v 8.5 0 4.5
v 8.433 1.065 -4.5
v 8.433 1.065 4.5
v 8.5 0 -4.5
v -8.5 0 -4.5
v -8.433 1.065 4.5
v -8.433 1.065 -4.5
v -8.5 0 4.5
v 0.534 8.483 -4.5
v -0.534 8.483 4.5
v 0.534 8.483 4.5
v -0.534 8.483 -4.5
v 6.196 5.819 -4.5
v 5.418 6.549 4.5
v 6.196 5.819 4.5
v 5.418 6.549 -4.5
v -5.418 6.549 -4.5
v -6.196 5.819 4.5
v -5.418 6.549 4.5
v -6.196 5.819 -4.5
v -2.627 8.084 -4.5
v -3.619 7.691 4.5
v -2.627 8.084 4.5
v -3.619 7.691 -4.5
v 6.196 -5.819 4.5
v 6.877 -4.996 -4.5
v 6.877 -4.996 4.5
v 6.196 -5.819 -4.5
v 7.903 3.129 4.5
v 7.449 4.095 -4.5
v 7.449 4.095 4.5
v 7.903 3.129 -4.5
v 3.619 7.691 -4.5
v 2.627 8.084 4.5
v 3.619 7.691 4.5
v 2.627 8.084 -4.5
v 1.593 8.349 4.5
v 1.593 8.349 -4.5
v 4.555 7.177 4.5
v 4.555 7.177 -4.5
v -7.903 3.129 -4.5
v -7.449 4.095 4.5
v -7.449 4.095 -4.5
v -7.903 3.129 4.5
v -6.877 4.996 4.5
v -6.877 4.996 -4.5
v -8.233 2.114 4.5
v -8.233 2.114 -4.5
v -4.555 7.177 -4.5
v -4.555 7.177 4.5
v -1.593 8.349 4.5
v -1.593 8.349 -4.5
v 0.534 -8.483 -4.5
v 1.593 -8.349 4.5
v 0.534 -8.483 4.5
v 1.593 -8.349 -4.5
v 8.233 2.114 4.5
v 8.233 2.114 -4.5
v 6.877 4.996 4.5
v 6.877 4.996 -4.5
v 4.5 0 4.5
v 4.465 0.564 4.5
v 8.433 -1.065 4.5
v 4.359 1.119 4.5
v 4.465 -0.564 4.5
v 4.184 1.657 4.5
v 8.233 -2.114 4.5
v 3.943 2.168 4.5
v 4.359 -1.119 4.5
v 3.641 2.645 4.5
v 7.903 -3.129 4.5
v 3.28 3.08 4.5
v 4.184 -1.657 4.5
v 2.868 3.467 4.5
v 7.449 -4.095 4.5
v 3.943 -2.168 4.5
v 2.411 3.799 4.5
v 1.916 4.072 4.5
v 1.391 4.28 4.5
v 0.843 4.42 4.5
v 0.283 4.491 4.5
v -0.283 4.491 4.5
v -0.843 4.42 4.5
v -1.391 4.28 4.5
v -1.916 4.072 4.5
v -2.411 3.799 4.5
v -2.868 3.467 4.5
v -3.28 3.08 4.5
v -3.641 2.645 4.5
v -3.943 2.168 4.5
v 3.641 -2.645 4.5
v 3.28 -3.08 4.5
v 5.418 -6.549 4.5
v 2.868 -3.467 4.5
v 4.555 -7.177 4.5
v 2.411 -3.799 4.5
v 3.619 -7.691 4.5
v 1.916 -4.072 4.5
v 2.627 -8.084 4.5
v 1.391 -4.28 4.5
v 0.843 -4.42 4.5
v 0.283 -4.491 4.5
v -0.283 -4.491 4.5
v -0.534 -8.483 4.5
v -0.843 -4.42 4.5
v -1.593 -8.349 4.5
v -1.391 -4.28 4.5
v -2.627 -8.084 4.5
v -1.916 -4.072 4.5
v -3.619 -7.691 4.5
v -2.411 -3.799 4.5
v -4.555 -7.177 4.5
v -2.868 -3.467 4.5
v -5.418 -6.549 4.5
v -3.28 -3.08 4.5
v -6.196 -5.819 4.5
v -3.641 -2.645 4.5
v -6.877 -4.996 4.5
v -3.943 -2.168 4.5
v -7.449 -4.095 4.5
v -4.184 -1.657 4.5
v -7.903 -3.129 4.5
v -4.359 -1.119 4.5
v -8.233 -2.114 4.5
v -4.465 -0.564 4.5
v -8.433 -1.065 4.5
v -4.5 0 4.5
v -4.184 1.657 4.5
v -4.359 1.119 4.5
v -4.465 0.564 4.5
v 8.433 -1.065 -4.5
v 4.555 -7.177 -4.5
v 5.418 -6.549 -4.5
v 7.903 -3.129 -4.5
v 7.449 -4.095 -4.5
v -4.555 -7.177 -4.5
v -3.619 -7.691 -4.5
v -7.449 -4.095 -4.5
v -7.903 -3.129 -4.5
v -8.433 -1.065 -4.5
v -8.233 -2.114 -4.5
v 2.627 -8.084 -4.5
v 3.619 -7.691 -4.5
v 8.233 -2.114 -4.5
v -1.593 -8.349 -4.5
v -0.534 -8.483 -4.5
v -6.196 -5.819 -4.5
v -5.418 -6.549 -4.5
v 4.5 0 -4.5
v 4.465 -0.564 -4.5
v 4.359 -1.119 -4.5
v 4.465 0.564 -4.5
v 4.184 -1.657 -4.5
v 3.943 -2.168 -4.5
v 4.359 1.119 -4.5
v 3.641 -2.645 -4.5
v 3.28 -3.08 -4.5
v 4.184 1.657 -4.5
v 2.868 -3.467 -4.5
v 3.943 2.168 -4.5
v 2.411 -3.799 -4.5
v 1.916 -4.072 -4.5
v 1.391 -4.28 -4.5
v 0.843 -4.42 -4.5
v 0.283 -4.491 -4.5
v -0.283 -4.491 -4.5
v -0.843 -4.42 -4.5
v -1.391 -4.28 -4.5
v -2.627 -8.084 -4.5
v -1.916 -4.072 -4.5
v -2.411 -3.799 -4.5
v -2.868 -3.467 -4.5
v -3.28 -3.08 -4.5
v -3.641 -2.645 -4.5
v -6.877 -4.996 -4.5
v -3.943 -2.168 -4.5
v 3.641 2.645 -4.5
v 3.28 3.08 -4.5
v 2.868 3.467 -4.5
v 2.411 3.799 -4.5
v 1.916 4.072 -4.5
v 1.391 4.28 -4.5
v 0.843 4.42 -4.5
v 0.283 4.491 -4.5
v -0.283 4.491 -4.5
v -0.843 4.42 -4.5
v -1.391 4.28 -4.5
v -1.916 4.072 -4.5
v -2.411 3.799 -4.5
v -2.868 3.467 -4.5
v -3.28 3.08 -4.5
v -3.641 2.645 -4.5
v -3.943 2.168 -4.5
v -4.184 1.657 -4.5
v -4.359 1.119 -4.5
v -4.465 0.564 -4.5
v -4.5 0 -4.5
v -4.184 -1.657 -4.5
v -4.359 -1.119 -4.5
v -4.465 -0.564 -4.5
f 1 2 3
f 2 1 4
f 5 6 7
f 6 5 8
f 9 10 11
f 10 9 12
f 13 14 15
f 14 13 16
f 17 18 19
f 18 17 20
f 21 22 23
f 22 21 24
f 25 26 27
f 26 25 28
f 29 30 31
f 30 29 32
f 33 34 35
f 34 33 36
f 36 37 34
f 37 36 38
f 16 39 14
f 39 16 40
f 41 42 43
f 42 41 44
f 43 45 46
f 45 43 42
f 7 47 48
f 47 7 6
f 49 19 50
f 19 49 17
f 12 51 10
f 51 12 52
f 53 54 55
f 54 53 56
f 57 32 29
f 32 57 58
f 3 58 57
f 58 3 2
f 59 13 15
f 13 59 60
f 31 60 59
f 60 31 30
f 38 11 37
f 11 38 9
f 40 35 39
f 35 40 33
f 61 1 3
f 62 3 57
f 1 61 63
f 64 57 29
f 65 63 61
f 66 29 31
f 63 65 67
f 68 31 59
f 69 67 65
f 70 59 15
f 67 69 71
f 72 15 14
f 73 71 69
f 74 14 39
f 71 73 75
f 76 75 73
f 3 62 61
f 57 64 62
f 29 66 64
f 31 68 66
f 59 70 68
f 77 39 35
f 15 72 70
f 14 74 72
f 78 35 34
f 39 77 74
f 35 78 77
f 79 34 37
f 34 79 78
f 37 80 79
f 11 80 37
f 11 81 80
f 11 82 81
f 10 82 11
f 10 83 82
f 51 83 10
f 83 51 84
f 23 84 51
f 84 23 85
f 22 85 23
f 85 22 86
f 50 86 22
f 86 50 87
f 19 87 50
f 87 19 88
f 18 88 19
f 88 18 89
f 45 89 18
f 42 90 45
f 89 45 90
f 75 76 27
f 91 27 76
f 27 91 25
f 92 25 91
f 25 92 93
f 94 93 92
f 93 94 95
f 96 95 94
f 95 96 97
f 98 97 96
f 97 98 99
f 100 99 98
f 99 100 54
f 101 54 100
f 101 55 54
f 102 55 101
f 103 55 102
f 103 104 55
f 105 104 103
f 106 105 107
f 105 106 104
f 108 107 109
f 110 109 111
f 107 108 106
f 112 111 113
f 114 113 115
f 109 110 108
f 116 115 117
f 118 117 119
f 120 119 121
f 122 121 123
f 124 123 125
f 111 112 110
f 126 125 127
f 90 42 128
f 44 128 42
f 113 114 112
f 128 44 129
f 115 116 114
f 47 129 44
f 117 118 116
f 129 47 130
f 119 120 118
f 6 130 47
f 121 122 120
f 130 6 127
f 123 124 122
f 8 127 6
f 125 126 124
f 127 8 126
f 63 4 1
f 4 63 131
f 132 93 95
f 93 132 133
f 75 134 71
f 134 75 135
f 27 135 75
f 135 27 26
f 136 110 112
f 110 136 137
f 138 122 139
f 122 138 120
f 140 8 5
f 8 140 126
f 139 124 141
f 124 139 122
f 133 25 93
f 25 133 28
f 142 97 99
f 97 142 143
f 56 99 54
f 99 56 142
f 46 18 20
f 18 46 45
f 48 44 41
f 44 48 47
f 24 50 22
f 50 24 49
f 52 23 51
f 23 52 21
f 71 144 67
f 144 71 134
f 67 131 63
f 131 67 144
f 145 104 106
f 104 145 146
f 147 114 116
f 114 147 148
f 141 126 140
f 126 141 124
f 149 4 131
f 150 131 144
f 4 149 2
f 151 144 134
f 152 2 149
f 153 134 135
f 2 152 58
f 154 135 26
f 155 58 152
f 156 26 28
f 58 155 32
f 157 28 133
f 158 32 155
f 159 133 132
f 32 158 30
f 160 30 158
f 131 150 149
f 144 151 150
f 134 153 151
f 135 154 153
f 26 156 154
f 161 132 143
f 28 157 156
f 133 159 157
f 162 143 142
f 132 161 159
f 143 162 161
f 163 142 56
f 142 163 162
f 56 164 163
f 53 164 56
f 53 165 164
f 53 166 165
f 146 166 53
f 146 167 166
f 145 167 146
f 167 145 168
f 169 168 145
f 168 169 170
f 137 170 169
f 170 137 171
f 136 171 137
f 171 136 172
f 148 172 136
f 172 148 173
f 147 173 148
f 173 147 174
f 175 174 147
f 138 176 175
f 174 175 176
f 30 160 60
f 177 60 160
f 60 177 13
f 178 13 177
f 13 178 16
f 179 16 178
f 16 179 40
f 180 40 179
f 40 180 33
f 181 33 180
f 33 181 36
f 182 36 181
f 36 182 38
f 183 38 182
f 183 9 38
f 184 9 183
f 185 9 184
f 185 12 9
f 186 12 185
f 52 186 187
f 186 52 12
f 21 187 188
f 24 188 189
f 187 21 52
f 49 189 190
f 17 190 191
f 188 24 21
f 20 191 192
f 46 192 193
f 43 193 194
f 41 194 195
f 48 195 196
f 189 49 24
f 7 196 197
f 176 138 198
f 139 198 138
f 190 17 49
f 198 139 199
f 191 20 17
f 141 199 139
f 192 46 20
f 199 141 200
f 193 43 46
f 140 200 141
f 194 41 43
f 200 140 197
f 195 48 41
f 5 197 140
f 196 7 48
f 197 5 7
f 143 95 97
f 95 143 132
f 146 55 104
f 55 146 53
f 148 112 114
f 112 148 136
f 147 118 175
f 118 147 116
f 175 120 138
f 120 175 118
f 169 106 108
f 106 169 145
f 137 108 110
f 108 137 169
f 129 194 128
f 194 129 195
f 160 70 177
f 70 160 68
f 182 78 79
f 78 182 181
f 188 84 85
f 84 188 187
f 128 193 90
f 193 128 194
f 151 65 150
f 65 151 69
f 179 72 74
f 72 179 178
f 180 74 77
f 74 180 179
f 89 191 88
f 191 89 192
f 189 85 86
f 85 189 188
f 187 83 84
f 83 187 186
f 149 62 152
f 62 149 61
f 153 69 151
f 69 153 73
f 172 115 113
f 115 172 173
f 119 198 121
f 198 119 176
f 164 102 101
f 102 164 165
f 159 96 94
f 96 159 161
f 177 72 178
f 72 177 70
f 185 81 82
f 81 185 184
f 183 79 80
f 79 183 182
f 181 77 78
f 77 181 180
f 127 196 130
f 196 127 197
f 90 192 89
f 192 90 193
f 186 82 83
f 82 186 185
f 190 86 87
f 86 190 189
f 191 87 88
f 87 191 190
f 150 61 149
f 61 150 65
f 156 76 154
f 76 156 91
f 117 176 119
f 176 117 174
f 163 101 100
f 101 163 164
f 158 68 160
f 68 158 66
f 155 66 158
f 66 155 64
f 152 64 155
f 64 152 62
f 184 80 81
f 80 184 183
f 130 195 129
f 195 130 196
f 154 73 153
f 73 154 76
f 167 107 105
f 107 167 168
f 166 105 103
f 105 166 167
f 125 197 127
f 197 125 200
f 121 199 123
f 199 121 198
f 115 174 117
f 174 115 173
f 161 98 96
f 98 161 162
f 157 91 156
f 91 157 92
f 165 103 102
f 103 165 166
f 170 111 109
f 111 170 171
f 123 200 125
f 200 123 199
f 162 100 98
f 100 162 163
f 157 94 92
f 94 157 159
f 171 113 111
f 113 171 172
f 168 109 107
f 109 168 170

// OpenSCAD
$fn = 50;


difference() {
	union() {
		translate(v = [0, 0, -4.5000000000]) {
			cylinder(h = 9, r = 8.5000000000);
		}
	}
	union() {
		translate(v = [0, 0, -100.0000000000]) {
			cylinder(h = 200, r = 4.5000000000);
		}
	}
}
